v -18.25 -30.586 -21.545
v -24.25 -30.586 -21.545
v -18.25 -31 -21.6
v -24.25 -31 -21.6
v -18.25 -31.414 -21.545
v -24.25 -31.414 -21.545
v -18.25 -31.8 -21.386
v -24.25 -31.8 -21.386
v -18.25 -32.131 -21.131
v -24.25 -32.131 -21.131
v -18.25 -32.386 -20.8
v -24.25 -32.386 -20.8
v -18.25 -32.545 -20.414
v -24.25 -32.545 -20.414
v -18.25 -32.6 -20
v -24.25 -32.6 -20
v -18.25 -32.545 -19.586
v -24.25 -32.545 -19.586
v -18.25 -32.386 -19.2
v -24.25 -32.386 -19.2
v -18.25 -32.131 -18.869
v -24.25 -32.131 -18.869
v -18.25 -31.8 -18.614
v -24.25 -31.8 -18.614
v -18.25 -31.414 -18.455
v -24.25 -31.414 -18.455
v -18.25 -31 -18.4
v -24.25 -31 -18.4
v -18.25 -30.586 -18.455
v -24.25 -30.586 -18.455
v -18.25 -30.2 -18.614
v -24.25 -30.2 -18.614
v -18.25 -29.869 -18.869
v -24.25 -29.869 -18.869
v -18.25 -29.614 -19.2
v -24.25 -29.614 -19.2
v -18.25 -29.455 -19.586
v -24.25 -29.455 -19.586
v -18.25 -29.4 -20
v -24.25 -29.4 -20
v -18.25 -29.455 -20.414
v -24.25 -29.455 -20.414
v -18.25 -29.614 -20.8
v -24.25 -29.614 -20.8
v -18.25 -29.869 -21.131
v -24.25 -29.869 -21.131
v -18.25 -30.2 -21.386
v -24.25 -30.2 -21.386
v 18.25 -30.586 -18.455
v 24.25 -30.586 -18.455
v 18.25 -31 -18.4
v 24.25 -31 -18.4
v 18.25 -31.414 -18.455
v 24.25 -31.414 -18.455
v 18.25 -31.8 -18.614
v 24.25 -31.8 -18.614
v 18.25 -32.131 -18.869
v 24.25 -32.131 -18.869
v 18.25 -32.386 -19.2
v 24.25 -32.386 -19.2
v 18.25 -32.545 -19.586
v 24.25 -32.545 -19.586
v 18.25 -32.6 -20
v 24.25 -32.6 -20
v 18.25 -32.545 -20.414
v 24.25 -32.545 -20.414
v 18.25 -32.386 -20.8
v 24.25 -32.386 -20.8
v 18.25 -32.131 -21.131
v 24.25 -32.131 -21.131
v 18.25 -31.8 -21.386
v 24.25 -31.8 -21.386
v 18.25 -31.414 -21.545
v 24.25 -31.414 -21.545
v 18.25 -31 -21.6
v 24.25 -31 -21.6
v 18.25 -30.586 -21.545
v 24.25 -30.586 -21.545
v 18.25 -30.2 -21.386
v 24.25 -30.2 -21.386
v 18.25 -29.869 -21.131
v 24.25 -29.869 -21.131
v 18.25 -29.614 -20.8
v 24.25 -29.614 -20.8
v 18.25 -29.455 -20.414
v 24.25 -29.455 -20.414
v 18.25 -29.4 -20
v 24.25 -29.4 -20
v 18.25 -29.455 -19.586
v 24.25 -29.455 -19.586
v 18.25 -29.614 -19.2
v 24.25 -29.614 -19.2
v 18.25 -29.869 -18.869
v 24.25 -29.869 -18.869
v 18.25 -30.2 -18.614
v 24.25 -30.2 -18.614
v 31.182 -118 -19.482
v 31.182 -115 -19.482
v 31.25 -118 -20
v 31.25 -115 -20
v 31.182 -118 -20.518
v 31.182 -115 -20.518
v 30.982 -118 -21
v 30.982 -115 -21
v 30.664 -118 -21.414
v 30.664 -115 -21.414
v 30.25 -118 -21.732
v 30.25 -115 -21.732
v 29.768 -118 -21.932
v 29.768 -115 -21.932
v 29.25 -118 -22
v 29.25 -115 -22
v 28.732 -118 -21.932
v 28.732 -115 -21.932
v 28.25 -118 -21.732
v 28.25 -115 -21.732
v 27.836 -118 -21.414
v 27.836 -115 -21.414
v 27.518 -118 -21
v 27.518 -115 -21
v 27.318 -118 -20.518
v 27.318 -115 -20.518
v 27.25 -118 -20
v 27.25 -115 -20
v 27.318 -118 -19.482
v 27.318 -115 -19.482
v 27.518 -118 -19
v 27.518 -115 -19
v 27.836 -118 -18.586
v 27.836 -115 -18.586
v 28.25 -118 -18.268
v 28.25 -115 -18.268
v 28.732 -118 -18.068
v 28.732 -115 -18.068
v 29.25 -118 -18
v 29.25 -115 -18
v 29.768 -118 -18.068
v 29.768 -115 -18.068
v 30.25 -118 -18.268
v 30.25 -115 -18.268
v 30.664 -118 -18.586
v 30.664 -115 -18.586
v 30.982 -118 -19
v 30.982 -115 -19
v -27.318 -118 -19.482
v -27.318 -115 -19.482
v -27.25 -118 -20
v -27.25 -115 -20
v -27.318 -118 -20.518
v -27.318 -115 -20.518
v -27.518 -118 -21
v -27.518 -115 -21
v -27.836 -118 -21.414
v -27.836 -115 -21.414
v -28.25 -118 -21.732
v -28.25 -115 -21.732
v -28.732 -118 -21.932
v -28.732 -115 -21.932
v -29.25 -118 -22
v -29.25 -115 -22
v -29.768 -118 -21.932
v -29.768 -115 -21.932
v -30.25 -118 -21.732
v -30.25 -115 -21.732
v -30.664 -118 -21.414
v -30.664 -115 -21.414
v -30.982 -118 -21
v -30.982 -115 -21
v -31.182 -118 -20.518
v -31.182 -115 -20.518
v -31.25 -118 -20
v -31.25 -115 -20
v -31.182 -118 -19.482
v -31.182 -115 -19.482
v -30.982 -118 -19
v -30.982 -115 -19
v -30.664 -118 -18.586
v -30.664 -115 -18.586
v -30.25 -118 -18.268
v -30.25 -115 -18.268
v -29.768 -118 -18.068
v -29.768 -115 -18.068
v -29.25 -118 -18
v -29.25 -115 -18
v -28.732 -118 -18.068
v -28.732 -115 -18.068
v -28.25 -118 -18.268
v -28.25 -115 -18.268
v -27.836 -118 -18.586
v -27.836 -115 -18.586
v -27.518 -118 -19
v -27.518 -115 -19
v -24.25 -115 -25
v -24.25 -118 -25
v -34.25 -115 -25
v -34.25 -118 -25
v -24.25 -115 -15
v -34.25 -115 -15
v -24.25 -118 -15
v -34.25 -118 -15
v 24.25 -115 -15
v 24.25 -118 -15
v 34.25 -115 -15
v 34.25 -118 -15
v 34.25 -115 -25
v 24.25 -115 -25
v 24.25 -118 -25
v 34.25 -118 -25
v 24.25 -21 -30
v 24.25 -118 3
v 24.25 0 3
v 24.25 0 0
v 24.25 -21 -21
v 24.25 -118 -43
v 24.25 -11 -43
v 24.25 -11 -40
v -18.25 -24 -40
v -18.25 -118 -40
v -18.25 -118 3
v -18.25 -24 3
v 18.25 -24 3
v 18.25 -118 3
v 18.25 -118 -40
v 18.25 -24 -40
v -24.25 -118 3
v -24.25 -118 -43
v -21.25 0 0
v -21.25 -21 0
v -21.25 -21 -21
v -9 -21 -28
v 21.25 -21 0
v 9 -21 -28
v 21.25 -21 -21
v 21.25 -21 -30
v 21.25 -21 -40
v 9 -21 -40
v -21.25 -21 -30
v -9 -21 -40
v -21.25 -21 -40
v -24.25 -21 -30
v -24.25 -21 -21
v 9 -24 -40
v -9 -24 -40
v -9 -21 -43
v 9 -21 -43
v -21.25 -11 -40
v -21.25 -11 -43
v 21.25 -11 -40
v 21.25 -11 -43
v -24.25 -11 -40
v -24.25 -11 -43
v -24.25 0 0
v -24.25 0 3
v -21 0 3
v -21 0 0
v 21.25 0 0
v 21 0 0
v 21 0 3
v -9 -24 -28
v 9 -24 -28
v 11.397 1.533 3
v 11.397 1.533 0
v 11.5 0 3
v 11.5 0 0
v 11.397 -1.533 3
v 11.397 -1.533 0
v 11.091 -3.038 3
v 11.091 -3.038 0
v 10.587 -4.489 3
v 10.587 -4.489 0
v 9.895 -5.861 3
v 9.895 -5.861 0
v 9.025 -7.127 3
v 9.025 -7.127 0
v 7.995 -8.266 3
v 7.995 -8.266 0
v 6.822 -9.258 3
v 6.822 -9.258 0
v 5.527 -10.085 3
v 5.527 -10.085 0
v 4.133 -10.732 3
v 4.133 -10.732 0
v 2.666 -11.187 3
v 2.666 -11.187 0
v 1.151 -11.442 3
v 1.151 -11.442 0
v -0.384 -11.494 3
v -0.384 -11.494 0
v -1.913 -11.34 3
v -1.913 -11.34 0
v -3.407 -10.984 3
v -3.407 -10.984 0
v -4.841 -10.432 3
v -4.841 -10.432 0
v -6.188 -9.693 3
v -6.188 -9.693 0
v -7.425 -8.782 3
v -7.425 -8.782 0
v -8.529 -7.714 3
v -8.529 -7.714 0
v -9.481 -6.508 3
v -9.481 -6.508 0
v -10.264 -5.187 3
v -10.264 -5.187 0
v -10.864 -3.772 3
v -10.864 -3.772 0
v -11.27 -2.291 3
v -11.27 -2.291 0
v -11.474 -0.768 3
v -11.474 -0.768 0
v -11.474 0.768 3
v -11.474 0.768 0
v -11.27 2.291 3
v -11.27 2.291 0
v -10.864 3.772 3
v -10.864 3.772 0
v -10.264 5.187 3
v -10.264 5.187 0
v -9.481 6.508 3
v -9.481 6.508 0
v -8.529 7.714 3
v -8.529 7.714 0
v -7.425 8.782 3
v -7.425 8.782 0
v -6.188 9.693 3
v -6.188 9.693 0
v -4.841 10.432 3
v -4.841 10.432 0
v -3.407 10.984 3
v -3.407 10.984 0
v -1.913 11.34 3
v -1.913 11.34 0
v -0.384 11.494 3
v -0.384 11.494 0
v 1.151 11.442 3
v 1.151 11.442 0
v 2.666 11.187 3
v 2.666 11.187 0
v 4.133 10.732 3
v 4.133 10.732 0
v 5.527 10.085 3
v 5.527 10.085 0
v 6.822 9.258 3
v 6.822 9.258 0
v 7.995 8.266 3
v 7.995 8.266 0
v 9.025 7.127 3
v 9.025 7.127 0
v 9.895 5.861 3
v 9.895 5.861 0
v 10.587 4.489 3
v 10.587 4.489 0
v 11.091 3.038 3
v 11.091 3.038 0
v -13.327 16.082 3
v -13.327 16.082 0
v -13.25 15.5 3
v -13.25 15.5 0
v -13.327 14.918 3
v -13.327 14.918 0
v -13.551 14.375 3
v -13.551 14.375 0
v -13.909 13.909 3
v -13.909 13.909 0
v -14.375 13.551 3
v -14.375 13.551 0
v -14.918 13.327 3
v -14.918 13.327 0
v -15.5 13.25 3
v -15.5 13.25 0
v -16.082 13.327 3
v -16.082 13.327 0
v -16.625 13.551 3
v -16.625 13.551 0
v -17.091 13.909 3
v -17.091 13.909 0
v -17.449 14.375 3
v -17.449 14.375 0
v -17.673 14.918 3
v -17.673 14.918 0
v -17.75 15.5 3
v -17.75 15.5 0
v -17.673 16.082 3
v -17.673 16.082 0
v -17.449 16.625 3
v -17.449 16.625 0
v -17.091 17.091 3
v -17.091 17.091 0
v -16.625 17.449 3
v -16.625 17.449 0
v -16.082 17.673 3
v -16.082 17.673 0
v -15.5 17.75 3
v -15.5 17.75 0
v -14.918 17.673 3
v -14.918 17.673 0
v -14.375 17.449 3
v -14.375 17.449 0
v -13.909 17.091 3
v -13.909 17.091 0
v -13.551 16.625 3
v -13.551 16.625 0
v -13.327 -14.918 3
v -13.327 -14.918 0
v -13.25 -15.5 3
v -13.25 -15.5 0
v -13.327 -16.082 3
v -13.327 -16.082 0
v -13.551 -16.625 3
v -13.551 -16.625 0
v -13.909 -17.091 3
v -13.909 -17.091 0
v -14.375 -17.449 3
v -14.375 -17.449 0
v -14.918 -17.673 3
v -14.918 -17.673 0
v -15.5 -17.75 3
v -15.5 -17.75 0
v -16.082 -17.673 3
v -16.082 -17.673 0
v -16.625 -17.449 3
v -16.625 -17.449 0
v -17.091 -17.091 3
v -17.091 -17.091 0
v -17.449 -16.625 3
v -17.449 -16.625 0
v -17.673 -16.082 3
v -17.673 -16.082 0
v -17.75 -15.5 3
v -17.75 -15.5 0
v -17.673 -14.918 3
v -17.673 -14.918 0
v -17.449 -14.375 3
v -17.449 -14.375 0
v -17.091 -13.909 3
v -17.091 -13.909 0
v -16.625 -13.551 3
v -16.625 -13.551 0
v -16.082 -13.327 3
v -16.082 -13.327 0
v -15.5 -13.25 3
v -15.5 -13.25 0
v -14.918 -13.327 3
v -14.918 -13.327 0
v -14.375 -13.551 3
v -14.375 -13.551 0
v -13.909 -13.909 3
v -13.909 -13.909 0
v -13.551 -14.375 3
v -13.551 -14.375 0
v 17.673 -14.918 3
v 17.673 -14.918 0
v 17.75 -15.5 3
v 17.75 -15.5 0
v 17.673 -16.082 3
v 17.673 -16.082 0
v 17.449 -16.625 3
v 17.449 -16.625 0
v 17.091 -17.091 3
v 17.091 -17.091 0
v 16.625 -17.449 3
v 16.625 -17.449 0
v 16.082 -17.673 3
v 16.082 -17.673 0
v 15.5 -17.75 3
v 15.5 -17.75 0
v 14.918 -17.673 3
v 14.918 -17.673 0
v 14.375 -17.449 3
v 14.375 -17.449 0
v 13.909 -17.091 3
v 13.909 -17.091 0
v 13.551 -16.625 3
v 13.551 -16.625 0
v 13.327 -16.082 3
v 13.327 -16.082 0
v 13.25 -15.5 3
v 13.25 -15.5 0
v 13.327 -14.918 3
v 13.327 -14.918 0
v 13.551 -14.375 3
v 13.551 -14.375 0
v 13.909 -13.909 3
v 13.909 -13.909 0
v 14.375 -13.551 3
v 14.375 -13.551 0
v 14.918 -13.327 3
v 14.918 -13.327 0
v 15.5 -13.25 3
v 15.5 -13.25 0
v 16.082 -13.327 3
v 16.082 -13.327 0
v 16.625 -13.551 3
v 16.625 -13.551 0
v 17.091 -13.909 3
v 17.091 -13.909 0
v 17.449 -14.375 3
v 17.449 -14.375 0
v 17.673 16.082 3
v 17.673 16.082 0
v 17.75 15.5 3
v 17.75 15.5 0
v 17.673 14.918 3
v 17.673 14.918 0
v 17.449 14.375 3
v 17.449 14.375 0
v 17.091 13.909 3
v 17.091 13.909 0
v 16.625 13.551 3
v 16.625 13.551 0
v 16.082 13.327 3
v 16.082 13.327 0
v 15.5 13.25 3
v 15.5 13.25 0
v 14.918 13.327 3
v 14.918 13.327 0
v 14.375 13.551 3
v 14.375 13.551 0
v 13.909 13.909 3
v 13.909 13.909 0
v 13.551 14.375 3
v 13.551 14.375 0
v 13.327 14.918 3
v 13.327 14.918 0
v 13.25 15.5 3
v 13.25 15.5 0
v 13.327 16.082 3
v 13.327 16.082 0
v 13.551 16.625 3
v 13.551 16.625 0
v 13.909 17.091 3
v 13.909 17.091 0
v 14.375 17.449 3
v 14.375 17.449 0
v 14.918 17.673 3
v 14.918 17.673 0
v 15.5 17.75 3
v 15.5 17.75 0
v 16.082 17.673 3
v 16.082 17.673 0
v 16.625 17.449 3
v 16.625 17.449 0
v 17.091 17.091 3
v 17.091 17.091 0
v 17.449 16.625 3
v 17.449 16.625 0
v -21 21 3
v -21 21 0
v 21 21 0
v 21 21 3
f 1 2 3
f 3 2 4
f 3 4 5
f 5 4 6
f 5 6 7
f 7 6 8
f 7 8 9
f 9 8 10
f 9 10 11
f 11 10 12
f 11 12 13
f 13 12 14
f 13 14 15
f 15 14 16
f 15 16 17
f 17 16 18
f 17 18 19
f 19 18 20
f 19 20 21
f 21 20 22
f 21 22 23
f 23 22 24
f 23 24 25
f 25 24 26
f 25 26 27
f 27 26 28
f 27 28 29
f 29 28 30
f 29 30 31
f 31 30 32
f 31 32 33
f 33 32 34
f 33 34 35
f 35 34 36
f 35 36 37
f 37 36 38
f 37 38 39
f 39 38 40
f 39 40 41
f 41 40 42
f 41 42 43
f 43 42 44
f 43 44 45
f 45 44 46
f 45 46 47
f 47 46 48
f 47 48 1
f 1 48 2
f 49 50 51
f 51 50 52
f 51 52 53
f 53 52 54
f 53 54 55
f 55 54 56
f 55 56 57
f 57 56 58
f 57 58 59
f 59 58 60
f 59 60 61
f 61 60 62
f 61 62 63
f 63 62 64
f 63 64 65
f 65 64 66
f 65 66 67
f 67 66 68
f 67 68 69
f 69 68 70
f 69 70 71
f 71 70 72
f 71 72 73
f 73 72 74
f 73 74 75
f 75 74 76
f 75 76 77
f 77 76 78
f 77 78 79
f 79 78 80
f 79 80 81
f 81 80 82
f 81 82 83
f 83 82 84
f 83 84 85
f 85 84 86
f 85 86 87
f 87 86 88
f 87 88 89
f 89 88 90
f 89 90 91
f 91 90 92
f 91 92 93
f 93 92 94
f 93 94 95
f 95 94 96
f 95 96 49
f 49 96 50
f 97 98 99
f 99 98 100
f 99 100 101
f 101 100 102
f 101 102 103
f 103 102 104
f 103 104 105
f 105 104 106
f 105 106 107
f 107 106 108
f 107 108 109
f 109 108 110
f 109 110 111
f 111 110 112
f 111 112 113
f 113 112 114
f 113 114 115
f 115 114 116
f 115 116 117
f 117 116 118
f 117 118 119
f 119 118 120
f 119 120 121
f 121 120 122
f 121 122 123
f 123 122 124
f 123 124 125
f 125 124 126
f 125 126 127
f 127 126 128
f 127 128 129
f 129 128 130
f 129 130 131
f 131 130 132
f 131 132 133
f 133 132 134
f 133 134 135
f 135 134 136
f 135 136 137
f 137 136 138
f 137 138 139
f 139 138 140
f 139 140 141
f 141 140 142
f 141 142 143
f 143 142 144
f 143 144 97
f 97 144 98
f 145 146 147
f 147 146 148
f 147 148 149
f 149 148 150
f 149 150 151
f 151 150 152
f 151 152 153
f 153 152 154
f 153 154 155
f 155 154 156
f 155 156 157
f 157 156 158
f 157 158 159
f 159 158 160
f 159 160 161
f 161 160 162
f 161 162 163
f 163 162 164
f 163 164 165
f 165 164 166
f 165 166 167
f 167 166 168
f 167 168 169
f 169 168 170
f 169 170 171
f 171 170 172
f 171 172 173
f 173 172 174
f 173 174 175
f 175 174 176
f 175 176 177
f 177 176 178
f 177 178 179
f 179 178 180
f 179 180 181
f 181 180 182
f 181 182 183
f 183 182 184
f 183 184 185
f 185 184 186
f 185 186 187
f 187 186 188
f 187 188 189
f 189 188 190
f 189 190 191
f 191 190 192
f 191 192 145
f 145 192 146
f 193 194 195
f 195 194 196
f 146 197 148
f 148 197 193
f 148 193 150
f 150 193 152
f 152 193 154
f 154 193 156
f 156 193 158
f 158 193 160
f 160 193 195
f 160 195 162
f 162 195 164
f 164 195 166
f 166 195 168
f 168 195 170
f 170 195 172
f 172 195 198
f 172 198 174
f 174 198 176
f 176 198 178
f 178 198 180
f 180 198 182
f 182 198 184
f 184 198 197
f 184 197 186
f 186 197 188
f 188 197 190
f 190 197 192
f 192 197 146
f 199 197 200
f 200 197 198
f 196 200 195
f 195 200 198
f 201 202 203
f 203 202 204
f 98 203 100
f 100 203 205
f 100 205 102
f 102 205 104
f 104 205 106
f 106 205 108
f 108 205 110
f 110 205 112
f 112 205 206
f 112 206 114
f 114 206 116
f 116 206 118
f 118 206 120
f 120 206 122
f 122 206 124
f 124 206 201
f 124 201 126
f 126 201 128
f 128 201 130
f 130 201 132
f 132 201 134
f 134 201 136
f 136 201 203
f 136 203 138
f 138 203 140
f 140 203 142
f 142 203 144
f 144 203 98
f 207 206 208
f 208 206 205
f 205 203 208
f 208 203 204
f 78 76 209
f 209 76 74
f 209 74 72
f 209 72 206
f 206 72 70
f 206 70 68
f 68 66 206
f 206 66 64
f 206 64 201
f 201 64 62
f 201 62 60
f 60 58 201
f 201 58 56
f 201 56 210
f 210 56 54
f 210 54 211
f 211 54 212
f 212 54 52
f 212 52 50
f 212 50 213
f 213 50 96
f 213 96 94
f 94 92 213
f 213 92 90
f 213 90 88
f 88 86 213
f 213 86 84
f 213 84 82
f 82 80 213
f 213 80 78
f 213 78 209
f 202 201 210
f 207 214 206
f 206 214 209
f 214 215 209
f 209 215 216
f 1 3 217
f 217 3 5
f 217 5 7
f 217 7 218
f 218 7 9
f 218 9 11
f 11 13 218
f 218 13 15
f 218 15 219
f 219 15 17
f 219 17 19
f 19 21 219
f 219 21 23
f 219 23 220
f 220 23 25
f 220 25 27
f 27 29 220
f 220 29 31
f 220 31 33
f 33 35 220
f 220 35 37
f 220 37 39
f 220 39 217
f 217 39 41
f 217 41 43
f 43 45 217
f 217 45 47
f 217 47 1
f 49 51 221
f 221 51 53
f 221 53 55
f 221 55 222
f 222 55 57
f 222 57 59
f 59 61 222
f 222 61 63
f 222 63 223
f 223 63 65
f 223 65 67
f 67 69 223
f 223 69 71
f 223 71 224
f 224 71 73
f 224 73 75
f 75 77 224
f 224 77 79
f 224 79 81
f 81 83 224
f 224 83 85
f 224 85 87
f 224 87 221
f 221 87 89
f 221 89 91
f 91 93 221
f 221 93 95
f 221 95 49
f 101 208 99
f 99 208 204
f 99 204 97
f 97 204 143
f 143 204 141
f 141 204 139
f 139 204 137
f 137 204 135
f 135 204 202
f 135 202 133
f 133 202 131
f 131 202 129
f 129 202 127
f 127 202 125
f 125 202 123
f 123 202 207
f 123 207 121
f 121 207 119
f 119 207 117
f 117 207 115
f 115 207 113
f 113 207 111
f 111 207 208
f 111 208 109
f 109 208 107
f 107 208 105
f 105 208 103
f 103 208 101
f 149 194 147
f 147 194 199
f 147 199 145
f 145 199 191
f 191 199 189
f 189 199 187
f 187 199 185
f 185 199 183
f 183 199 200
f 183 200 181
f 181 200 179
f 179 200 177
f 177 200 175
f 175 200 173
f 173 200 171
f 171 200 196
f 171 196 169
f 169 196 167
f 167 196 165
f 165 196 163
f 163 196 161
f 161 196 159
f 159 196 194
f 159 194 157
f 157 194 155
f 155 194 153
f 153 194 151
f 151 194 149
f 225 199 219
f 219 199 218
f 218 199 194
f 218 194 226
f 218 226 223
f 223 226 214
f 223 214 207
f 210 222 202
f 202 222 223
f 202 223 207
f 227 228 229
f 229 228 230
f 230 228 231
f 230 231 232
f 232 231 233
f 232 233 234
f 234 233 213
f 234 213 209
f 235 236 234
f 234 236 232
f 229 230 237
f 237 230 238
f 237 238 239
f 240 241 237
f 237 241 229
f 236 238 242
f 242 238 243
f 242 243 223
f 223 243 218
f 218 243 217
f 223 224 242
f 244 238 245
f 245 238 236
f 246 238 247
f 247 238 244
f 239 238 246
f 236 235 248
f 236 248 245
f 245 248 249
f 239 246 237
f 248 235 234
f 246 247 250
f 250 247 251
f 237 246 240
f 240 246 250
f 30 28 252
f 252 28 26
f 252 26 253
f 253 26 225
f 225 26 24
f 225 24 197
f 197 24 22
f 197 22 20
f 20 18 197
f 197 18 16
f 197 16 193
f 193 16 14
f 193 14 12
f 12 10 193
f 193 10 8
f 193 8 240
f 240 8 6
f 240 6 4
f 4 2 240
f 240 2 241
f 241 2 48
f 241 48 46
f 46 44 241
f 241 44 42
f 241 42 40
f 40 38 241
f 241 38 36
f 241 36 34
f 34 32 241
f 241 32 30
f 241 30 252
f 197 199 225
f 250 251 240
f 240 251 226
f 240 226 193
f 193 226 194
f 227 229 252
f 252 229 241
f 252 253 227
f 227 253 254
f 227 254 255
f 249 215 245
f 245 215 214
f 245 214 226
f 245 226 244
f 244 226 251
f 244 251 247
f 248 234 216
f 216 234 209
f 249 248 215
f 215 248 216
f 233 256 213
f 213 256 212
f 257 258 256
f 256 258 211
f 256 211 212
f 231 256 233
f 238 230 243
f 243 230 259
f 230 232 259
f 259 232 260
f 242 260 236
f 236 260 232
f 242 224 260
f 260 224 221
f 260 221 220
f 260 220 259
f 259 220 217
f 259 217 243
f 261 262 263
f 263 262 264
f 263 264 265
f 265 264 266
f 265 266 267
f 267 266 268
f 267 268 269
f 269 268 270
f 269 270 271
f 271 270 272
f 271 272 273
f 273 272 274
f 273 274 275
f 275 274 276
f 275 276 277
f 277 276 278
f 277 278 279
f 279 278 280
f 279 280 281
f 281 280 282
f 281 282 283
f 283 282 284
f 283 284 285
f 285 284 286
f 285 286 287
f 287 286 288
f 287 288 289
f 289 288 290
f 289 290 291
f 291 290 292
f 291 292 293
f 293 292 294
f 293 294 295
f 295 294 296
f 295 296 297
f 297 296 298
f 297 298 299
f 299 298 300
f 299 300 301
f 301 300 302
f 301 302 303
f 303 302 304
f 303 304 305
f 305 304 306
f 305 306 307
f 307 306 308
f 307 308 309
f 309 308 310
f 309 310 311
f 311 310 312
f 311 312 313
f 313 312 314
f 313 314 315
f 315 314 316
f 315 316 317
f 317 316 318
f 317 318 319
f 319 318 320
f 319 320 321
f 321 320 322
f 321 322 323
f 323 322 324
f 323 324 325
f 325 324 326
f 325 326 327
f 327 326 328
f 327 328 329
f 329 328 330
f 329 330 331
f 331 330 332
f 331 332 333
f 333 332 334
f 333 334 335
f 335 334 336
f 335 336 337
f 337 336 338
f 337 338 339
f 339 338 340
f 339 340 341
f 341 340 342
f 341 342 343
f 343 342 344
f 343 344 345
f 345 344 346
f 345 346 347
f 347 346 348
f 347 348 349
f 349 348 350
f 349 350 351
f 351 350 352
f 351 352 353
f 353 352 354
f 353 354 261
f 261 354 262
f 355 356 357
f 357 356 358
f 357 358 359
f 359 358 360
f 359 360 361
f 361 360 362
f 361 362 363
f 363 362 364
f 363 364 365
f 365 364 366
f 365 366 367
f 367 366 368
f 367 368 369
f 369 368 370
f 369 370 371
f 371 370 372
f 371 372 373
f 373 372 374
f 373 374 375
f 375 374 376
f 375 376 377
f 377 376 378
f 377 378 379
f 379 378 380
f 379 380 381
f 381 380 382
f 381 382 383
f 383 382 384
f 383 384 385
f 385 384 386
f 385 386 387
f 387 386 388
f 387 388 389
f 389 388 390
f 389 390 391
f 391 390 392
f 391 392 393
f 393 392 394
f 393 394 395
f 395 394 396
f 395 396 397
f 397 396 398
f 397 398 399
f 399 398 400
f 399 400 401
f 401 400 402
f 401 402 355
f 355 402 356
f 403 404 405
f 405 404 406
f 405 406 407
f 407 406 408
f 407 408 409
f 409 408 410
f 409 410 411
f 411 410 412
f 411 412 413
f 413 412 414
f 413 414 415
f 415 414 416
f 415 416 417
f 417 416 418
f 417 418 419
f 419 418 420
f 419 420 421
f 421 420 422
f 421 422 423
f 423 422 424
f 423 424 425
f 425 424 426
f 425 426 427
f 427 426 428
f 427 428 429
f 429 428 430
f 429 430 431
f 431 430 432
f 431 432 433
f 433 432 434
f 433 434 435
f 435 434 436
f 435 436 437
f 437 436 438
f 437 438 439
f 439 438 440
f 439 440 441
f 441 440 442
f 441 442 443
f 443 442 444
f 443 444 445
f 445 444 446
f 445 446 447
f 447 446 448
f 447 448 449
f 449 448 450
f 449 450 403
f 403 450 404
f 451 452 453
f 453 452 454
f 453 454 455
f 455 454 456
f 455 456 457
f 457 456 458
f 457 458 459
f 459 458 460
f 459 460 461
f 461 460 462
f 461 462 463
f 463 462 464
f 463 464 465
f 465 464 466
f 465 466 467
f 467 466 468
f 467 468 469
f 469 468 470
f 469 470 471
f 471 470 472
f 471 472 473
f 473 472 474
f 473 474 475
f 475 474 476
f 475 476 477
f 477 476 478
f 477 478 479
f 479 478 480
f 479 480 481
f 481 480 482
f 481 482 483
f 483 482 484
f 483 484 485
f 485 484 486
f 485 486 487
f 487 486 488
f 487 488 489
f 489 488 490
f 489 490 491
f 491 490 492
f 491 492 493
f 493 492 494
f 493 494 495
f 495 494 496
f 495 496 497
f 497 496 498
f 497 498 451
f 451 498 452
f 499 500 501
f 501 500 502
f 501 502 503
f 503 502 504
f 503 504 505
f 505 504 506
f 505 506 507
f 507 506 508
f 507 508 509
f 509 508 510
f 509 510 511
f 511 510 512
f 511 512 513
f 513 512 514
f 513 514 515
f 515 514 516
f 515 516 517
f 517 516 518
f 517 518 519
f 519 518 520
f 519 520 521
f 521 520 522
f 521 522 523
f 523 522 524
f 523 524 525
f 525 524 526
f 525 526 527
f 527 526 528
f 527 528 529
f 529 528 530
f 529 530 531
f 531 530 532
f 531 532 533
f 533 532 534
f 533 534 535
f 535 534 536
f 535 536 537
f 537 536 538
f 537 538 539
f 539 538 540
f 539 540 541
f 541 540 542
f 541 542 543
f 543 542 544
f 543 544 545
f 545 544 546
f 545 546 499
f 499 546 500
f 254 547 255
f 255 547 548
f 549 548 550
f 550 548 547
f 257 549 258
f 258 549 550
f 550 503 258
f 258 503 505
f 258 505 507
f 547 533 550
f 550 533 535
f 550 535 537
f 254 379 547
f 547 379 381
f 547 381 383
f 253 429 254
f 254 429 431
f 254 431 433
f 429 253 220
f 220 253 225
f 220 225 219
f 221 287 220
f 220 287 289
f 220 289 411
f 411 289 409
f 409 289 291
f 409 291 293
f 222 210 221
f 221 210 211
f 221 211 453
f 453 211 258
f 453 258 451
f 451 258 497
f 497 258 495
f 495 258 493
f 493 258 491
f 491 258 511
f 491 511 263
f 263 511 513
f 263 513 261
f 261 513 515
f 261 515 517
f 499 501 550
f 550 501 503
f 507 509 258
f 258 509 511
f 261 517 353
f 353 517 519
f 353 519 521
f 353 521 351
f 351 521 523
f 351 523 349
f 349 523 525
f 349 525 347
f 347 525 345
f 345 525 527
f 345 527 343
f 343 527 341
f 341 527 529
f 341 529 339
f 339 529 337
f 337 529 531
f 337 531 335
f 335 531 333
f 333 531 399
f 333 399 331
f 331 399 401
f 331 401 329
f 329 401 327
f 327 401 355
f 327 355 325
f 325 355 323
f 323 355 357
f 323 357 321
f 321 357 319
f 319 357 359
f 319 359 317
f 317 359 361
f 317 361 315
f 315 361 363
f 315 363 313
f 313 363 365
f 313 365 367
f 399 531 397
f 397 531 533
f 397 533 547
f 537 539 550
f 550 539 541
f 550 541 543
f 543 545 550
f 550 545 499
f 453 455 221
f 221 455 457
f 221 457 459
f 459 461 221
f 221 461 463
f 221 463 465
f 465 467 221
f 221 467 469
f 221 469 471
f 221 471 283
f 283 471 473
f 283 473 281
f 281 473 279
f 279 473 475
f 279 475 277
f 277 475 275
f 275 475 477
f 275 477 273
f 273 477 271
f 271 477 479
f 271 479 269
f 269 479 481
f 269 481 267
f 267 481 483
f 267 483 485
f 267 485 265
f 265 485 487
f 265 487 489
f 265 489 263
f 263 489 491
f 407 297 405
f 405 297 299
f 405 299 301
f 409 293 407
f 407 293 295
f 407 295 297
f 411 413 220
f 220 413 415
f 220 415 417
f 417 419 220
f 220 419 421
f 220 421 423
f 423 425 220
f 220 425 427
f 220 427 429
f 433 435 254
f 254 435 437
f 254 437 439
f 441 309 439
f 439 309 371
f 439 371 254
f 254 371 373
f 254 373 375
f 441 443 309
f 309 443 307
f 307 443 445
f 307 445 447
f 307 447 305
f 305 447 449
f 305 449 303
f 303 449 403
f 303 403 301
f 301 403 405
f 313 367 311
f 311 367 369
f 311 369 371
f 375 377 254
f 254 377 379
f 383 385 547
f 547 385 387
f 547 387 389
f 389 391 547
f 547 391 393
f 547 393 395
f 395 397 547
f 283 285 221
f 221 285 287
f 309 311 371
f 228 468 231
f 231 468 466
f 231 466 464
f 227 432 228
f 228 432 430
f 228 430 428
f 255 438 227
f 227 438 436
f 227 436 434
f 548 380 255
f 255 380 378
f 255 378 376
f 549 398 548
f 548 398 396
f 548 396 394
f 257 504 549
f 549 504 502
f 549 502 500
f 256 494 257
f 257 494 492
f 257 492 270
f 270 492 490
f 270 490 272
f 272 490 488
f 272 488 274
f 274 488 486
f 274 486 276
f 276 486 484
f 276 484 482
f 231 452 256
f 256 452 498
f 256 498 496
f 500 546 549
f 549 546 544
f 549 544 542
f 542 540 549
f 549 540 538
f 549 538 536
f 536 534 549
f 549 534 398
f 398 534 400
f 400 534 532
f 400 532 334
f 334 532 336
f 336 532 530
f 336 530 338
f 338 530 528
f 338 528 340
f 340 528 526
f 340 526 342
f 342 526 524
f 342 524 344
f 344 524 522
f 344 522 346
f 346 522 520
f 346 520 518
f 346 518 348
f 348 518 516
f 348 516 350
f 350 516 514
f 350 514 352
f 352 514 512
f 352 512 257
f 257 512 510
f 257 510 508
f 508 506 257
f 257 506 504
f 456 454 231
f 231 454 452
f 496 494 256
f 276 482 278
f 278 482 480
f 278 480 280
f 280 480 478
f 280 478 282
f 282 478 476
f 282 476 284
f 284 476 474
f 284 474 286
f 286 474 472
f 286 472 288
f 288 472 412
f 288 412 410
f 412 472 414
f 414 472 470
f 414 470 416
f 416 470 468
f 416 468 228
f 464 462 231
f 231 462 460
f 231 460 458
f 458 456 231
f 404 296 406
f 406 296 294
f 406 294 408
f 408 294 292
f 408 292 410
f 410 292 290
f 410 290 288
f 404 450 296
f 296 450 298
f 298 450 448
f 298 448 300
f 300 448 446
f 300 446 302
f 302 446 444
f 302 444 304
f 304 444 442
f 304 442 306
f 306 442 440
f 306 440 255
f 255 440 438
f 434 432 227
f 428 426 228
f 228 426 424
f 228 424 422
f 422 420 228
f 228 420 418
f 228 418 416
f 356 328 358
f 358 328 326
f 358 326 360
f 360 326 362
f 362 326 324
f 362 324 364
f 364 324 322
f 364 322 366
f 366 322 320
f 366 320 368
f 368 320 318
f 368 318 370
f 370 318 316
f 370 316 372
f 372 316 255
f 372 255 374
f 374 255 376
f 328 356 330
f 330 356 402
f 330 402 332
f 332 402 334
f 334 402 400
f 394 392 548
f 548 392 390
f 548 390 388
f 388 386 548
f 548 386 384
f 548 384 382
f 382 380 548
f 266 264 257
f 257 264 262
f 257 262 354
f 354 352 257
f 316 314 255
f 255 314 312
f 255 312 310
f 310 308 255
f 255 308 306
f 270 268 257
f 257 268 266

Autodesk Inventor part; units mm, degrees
ref_plane "YZ Plane" through (0, 0, 0) normal (1, 0, 0) x (0, 1, 0)
ref_plane "XZ Plane" through (0, 0, 0) normal (0, 1, 0) x (-1, 0, 0)
ref_plane "XY Plane" through (0, 0, 0) normal (0, 0, 1) x (1, 0, 0)
sketch "Boceto1" plane through (0, 0, 0) normal (0, 0, 1) x (1, 0, 0)
  line L0 (-21, 21) -> (21, 21)
  line L1 (21, 21) -> (21, -21)
  line L2 (21, -21) -> (-21, -21)
  line L3 (-21, -21) -> (-21, 21)
  circle A0 centre (0, 0) radius 11.5
  circle A1 centre (-15.5, 15.5) radius 2.25
  circle A2 centre (-15.5, -15.5) radius 2.25
  circle A3 centre (15.5, -15.5) radius 2.25
  circle A4 centre (15.5, 15.5) radius 2.25
  dimension "d0" = 42
  dimension "d1" = 42
  dimension "d2" = 23
  dimension "d6" = 4.5
  dimension "d7" = 4.5
  dimension "d8" = 4.5
  dimension "d9" = 4.5
extrude "Extrusión1" add sketch "Boceto1" along normal blind 3
sketch "Boceto28" plane through (0, 0, 3) normal (0, 0, 1) x (1, 0, 0)
  line L0 (-21.25, -24) -> (21.25, -24)
  line L1 (21.25, -24) -> (21.25, -21)
  line L2 (-21.25, -21) -> (-21.25, -24)
  line L3 (-21, -21) -> (21, -21) projected
  line L4 (21.25, -21) -> (-21.25, -21)
  point P0 (0, 0)
extrude "Extrusión24" add sketch "Boceto28" against normal blind 43
sketch "Boceto29" plane through (-21.25, -21, -40) normal (0, 1, 0) x (1, 0, 0)
  line L0 (30.25, -12) -> (12.25, -12)
  line L1 (0, 0) -> (42.5, 0) projected
  line L2 (12.25, 0) -> (30.25, 0)
  line L3 (12.25, 0) -> (12.25, -12)
  line L4 (30.25, 0) -> (30.25, -12)
  point P0 (21.25, -40)
extrude "Extrusión25" cut sketch "Boceto29" against normal blind 3
sketch "Boceto33" plane through (21.25, -24, 3) normal (1, 0, 0) x (0, 0, -1)
  line L0 (43, 0) -> (33, 0)
  line L1 (33, 0) -> (33, 3)
  line L2 (43, 0) -> (46, 0)
  line L3 (46, 0) -> (46, 13)
  line L4 (46, 13) -> (43, 13)
  line L5 (43, 13) -> (33, 3)
  line L6 (0, 45) -> (0, 3) projected
  line L7 (0, 0) -> (43, 0) projected
  line L8 (0, 24) -> (0, 0)
  line L9 (0, 0) -> (24, 0)
  line L10 (24, 0) -> (24, 3)
  line L11 (0, 3) -> (43, 3) projected
  line L12 (0, 24) -> (3, 24)
  line L13 (3, 45) -> (3, 3) projected
  line L14 (3, 24) -> (24, 3)
  point P0 (0, 3)
  dimension "d153" = 10
  dimension "d154" = 3
  dimension "d155" = 13
  dimension "d156" = 3
  dimension "d181" = 24
extrude "Extrusión28" add sketch "Boceto33" along normal blind 3 contours L0 L1 L5 L4 L3 L2 | L7 L8 L11 L10 | L11 L13 L14 | L11 L6 L12 L13
sketch "Boceto34" plane through (-21.25, -24, 3) normal (-1, 0, 0) x (0, 0, 1)
  line L0 (-46, 0) -> (-46, 13) projected
  line L1 (-46, 13) -> (-43, 13) projected
  line L2 (-46, 13) -> (-43, 13)
  line L3 (-43, 13) -> (-33, 3)
  line L4 (-43, 0) -> (-46, 0) projected
  line L5 (-46, 13) -> (-46, 0)
  line L6 (-46, 0) -> (-33, 0)
  line L7 (-33, 3) -> (-33, 0)
  line L8 (-24, 0) -> (-24, 3)
  line L9 (-24, 3) -> (-3, 24)
  line L10 (0, 24) -> (-3, 24)
  line L11 (-24, 0) -> (0, 0)
  line L12 (0, 0) -> (0, 24)
extrude "Extrusión29" add sketch "Boceto34" along normal blind 3
sketch "Boceto36" plane through (0, 0, -40) normal (0, 0, -1) x (-1, 0, 0)
  line L0 (9, -21) -> (9, -24) projected
  line L1 (9, -24) -> (21.25, -24)
  line L2 (21.25, -24) -> (21.25, -11)
  line L3 (9, -21) -> (9, -24)
  line L4 (-9, -24) -> (-9, -21) projected
  line L5 (-9, -21) -> (-9, -24)
  line L6 (-21, -21) -> (-21, 21) projected
  line L7 (-21.25, -11) -> (-9, -21)
  line L8 (-21.25, -11) -> (-21.25, -24)
  line L9 (24.25, -24) -> (-24.25, -24) projected
  line L10 (-9, -24) -> (-21.25, -24)
  line L11 (9, -21) -> (21.25, -11)
extrude "Extrusión31" add sketch "Boceto36" along normal blind 3
sketch "Boceto37" plane through (-21, -21, 0) normal (0, 1, 0) x (1, 0, 0)
  line L0 (45.25, 40) -> (45.25, 30) projected
  line L1 (42.25, 21) -> (42.25, 0) projected
  line L2 (45.25, 30) -> (42.25, 30)
  line L3 (42.25, 30) -> (42.25, 21)
  line L4 (42.25, 21) -> (45.25, 21)
  line L5 (45.25, 21) -> (45.25, 30)
  line L6 (30, 40) -> (30, 43) projected
  line L7 (12, 43) -> (12, 28) projected
  line L8 (30, 40) -> (12, 40)
  line L9 (12, 40) -> (12, 43)
  line L10 (12, 43) -> (30, 43)
  line L11 (30, 43) -> (30, 40)
  line L12 (-0.25, 21) -> (-0.25, 30) projected
  line L13 (-3.25, 0) -> (-3.25, 21) projected
  line L14 (-0.25, 30) -> (-3.25, 30)
  line L15 (-3.25, 30) -> (-3.25, 21)
  line L16 (-3.25, 21) -> (-0.25, 21)
  line L17 (-0.25, 21) -> (-0.25, 30)
extrude "Extrusión32" add sketch "Boceto37" against normal blind 3
sketch "Boceto38" plane through (0, 0, 3) normal (0, 0, 1) x (1, 0, 0)
  line L0 (-21.25, 0) -> (-21.25, -21) projected
  line L1 (-21, -21) -> (-21.25, -21) projected
  line L2 (-21.25, 0) -> (-21, 0)
  line L3 (-21, 0) -> (-21, -21)
  line L4 (-21, -21) -> (-21.25, -21)
  line L5 (-21.25, -21) -> (-21.25, 0)
  line L6 (21, -21) -> (21, 21) projected
  line L7 (21.25, 0) -> (21.25, -21) projected
  line L8 (21, -21) -> (21.25, -21)
  line L9 (21.25, -21) -> (21.25, 0)
  line L10 (21.25, 0) -> (21, 0)
  line L11 (21, 0) -> (21, -21)
extrude "Extrusión33" add sketch "Boceto38" against normal blind 3
sketch "Boceto50" plane through (24.25, -24, -43) normal (0, -1, 0) x (1, 0, 0)
  line L0 (-45.5, 0) -> (-48.5, 0) projected
  line L1 (-48.5, 0) -> (-48.5, 46) projected
  line L2 (-48.5, 0) -> (-48.5, 46)
  line L3 (-48.5, 46) -> (-42.5, 46)
  line L4 (-42.5, 46) -> (-42.5, 3)
  line L5 (-48.5, 0) -> (0, 0) projected
  line L6 (-48.5, 0) -> (0, 0)
  line L7 (0, 0) -> (0, 46)
  line L8 (0, 46) -> (-6, 46)
  line L9 (-6, 46) -> (-6, 3)
  line L10 (-42.5, 3) -> (-6, 3)
  dimension "d183" = 6
  dimension "d184" = 6
extrude "Extrusión39" add sketch "Boceto50" along normal blind 94
sketch "Boceto51" plane through (24.25, -24, 3) normal (1, 0, 0) x (0, 0, -1)
  line L0 (18, -94) -> (28, -94)
  line L1 (28, -94) -> (28, -91)
  line L2 (28, -91) -> (18, -91)
  line L3 (18, -91) -> (18, -94)
  point P0 (3, 24)
  dimension "d171" = 10
  dimension "d172" = 3
extrude "Extrusión40" add sketch "Boceto51" along normal blind 10
sketch "Boceto52" plane through (-24.25, -24, 3) normal (-1, 0, 0) x (0, 0, 1)
  line L0 (0, -94) -> (-46, -94) projected
  line L1 (-18, -91) -> (-18, -94) projected
  line L2 (-23, -94) -> (-18, -94)
  line L3 (-18, -94) -> (-18, -91)
  line L4 (-28, -91) -> (-18, -91) projected
  line L5 (-18, -91) -> (-28, -91)
  line L6 (-28, -94) -> (-28, -91) projected
  line L7 (-28, -91) -> (-28, -94)
  line L8 (-28, -94) -> (-23, -94)
  point P0 (-3, 24)
extrude "Extrusión41" add sketch "Boceto52" along normal blind 10
sketch "Boceto56" plane through (-24.25, -115, -15) normal (0, 1, 0) x (1, 0, 0)
  line L0 (48.5, 0) -> (58.5, 0) projected
  line L1 (48.5, 10) -> (58.5, 10) projected
  line L2 (0, 10) -> (-10, 10) projected
  line L3 (0, 0) -> (-10, 0) projected
  line L4 (-10, 0) -> (-10, 10) projected
  circle A0 centre (-5, 5) radius 2
  circle A1 centre (53.5, 5) radius 2
  point P0 (24.25, -15)
  dimension "d185" = 4
  dimension "d186" = 4
extrude "Extrusión43" cut sketch "Boceto56" against normal blind 3
sketch "Boceto66" plane through (24.25, -24, 3) normal (1, 0, 0) x (0, 0, -1)
  line L0 (3, 24) -> (24, 3) projected
  circle A0 centre (23, -7) radius 1.6
  dimension "d224" = 3.2
extrude "Extrusión48" cut sketch "Boceto66" against normal blind 10
sketch "Boceto67" plane through (-24.25, -24, 3) normal (-1, 0, 0) x (0, 0, 1)
  line L0 (0, 24) -> (0, -94) projected
  circle A0 centre (-23, -7) radius 1.6
  point P0 (-3, 24)
  point P1 (-24, 3)
  dimension "d228" = 3.2
extrude "Extrusión50" cut sketch "Boceto67" against normal blind 10
properties part number "Torre Motor Definitiva Pont" material "Plástico ABS"
